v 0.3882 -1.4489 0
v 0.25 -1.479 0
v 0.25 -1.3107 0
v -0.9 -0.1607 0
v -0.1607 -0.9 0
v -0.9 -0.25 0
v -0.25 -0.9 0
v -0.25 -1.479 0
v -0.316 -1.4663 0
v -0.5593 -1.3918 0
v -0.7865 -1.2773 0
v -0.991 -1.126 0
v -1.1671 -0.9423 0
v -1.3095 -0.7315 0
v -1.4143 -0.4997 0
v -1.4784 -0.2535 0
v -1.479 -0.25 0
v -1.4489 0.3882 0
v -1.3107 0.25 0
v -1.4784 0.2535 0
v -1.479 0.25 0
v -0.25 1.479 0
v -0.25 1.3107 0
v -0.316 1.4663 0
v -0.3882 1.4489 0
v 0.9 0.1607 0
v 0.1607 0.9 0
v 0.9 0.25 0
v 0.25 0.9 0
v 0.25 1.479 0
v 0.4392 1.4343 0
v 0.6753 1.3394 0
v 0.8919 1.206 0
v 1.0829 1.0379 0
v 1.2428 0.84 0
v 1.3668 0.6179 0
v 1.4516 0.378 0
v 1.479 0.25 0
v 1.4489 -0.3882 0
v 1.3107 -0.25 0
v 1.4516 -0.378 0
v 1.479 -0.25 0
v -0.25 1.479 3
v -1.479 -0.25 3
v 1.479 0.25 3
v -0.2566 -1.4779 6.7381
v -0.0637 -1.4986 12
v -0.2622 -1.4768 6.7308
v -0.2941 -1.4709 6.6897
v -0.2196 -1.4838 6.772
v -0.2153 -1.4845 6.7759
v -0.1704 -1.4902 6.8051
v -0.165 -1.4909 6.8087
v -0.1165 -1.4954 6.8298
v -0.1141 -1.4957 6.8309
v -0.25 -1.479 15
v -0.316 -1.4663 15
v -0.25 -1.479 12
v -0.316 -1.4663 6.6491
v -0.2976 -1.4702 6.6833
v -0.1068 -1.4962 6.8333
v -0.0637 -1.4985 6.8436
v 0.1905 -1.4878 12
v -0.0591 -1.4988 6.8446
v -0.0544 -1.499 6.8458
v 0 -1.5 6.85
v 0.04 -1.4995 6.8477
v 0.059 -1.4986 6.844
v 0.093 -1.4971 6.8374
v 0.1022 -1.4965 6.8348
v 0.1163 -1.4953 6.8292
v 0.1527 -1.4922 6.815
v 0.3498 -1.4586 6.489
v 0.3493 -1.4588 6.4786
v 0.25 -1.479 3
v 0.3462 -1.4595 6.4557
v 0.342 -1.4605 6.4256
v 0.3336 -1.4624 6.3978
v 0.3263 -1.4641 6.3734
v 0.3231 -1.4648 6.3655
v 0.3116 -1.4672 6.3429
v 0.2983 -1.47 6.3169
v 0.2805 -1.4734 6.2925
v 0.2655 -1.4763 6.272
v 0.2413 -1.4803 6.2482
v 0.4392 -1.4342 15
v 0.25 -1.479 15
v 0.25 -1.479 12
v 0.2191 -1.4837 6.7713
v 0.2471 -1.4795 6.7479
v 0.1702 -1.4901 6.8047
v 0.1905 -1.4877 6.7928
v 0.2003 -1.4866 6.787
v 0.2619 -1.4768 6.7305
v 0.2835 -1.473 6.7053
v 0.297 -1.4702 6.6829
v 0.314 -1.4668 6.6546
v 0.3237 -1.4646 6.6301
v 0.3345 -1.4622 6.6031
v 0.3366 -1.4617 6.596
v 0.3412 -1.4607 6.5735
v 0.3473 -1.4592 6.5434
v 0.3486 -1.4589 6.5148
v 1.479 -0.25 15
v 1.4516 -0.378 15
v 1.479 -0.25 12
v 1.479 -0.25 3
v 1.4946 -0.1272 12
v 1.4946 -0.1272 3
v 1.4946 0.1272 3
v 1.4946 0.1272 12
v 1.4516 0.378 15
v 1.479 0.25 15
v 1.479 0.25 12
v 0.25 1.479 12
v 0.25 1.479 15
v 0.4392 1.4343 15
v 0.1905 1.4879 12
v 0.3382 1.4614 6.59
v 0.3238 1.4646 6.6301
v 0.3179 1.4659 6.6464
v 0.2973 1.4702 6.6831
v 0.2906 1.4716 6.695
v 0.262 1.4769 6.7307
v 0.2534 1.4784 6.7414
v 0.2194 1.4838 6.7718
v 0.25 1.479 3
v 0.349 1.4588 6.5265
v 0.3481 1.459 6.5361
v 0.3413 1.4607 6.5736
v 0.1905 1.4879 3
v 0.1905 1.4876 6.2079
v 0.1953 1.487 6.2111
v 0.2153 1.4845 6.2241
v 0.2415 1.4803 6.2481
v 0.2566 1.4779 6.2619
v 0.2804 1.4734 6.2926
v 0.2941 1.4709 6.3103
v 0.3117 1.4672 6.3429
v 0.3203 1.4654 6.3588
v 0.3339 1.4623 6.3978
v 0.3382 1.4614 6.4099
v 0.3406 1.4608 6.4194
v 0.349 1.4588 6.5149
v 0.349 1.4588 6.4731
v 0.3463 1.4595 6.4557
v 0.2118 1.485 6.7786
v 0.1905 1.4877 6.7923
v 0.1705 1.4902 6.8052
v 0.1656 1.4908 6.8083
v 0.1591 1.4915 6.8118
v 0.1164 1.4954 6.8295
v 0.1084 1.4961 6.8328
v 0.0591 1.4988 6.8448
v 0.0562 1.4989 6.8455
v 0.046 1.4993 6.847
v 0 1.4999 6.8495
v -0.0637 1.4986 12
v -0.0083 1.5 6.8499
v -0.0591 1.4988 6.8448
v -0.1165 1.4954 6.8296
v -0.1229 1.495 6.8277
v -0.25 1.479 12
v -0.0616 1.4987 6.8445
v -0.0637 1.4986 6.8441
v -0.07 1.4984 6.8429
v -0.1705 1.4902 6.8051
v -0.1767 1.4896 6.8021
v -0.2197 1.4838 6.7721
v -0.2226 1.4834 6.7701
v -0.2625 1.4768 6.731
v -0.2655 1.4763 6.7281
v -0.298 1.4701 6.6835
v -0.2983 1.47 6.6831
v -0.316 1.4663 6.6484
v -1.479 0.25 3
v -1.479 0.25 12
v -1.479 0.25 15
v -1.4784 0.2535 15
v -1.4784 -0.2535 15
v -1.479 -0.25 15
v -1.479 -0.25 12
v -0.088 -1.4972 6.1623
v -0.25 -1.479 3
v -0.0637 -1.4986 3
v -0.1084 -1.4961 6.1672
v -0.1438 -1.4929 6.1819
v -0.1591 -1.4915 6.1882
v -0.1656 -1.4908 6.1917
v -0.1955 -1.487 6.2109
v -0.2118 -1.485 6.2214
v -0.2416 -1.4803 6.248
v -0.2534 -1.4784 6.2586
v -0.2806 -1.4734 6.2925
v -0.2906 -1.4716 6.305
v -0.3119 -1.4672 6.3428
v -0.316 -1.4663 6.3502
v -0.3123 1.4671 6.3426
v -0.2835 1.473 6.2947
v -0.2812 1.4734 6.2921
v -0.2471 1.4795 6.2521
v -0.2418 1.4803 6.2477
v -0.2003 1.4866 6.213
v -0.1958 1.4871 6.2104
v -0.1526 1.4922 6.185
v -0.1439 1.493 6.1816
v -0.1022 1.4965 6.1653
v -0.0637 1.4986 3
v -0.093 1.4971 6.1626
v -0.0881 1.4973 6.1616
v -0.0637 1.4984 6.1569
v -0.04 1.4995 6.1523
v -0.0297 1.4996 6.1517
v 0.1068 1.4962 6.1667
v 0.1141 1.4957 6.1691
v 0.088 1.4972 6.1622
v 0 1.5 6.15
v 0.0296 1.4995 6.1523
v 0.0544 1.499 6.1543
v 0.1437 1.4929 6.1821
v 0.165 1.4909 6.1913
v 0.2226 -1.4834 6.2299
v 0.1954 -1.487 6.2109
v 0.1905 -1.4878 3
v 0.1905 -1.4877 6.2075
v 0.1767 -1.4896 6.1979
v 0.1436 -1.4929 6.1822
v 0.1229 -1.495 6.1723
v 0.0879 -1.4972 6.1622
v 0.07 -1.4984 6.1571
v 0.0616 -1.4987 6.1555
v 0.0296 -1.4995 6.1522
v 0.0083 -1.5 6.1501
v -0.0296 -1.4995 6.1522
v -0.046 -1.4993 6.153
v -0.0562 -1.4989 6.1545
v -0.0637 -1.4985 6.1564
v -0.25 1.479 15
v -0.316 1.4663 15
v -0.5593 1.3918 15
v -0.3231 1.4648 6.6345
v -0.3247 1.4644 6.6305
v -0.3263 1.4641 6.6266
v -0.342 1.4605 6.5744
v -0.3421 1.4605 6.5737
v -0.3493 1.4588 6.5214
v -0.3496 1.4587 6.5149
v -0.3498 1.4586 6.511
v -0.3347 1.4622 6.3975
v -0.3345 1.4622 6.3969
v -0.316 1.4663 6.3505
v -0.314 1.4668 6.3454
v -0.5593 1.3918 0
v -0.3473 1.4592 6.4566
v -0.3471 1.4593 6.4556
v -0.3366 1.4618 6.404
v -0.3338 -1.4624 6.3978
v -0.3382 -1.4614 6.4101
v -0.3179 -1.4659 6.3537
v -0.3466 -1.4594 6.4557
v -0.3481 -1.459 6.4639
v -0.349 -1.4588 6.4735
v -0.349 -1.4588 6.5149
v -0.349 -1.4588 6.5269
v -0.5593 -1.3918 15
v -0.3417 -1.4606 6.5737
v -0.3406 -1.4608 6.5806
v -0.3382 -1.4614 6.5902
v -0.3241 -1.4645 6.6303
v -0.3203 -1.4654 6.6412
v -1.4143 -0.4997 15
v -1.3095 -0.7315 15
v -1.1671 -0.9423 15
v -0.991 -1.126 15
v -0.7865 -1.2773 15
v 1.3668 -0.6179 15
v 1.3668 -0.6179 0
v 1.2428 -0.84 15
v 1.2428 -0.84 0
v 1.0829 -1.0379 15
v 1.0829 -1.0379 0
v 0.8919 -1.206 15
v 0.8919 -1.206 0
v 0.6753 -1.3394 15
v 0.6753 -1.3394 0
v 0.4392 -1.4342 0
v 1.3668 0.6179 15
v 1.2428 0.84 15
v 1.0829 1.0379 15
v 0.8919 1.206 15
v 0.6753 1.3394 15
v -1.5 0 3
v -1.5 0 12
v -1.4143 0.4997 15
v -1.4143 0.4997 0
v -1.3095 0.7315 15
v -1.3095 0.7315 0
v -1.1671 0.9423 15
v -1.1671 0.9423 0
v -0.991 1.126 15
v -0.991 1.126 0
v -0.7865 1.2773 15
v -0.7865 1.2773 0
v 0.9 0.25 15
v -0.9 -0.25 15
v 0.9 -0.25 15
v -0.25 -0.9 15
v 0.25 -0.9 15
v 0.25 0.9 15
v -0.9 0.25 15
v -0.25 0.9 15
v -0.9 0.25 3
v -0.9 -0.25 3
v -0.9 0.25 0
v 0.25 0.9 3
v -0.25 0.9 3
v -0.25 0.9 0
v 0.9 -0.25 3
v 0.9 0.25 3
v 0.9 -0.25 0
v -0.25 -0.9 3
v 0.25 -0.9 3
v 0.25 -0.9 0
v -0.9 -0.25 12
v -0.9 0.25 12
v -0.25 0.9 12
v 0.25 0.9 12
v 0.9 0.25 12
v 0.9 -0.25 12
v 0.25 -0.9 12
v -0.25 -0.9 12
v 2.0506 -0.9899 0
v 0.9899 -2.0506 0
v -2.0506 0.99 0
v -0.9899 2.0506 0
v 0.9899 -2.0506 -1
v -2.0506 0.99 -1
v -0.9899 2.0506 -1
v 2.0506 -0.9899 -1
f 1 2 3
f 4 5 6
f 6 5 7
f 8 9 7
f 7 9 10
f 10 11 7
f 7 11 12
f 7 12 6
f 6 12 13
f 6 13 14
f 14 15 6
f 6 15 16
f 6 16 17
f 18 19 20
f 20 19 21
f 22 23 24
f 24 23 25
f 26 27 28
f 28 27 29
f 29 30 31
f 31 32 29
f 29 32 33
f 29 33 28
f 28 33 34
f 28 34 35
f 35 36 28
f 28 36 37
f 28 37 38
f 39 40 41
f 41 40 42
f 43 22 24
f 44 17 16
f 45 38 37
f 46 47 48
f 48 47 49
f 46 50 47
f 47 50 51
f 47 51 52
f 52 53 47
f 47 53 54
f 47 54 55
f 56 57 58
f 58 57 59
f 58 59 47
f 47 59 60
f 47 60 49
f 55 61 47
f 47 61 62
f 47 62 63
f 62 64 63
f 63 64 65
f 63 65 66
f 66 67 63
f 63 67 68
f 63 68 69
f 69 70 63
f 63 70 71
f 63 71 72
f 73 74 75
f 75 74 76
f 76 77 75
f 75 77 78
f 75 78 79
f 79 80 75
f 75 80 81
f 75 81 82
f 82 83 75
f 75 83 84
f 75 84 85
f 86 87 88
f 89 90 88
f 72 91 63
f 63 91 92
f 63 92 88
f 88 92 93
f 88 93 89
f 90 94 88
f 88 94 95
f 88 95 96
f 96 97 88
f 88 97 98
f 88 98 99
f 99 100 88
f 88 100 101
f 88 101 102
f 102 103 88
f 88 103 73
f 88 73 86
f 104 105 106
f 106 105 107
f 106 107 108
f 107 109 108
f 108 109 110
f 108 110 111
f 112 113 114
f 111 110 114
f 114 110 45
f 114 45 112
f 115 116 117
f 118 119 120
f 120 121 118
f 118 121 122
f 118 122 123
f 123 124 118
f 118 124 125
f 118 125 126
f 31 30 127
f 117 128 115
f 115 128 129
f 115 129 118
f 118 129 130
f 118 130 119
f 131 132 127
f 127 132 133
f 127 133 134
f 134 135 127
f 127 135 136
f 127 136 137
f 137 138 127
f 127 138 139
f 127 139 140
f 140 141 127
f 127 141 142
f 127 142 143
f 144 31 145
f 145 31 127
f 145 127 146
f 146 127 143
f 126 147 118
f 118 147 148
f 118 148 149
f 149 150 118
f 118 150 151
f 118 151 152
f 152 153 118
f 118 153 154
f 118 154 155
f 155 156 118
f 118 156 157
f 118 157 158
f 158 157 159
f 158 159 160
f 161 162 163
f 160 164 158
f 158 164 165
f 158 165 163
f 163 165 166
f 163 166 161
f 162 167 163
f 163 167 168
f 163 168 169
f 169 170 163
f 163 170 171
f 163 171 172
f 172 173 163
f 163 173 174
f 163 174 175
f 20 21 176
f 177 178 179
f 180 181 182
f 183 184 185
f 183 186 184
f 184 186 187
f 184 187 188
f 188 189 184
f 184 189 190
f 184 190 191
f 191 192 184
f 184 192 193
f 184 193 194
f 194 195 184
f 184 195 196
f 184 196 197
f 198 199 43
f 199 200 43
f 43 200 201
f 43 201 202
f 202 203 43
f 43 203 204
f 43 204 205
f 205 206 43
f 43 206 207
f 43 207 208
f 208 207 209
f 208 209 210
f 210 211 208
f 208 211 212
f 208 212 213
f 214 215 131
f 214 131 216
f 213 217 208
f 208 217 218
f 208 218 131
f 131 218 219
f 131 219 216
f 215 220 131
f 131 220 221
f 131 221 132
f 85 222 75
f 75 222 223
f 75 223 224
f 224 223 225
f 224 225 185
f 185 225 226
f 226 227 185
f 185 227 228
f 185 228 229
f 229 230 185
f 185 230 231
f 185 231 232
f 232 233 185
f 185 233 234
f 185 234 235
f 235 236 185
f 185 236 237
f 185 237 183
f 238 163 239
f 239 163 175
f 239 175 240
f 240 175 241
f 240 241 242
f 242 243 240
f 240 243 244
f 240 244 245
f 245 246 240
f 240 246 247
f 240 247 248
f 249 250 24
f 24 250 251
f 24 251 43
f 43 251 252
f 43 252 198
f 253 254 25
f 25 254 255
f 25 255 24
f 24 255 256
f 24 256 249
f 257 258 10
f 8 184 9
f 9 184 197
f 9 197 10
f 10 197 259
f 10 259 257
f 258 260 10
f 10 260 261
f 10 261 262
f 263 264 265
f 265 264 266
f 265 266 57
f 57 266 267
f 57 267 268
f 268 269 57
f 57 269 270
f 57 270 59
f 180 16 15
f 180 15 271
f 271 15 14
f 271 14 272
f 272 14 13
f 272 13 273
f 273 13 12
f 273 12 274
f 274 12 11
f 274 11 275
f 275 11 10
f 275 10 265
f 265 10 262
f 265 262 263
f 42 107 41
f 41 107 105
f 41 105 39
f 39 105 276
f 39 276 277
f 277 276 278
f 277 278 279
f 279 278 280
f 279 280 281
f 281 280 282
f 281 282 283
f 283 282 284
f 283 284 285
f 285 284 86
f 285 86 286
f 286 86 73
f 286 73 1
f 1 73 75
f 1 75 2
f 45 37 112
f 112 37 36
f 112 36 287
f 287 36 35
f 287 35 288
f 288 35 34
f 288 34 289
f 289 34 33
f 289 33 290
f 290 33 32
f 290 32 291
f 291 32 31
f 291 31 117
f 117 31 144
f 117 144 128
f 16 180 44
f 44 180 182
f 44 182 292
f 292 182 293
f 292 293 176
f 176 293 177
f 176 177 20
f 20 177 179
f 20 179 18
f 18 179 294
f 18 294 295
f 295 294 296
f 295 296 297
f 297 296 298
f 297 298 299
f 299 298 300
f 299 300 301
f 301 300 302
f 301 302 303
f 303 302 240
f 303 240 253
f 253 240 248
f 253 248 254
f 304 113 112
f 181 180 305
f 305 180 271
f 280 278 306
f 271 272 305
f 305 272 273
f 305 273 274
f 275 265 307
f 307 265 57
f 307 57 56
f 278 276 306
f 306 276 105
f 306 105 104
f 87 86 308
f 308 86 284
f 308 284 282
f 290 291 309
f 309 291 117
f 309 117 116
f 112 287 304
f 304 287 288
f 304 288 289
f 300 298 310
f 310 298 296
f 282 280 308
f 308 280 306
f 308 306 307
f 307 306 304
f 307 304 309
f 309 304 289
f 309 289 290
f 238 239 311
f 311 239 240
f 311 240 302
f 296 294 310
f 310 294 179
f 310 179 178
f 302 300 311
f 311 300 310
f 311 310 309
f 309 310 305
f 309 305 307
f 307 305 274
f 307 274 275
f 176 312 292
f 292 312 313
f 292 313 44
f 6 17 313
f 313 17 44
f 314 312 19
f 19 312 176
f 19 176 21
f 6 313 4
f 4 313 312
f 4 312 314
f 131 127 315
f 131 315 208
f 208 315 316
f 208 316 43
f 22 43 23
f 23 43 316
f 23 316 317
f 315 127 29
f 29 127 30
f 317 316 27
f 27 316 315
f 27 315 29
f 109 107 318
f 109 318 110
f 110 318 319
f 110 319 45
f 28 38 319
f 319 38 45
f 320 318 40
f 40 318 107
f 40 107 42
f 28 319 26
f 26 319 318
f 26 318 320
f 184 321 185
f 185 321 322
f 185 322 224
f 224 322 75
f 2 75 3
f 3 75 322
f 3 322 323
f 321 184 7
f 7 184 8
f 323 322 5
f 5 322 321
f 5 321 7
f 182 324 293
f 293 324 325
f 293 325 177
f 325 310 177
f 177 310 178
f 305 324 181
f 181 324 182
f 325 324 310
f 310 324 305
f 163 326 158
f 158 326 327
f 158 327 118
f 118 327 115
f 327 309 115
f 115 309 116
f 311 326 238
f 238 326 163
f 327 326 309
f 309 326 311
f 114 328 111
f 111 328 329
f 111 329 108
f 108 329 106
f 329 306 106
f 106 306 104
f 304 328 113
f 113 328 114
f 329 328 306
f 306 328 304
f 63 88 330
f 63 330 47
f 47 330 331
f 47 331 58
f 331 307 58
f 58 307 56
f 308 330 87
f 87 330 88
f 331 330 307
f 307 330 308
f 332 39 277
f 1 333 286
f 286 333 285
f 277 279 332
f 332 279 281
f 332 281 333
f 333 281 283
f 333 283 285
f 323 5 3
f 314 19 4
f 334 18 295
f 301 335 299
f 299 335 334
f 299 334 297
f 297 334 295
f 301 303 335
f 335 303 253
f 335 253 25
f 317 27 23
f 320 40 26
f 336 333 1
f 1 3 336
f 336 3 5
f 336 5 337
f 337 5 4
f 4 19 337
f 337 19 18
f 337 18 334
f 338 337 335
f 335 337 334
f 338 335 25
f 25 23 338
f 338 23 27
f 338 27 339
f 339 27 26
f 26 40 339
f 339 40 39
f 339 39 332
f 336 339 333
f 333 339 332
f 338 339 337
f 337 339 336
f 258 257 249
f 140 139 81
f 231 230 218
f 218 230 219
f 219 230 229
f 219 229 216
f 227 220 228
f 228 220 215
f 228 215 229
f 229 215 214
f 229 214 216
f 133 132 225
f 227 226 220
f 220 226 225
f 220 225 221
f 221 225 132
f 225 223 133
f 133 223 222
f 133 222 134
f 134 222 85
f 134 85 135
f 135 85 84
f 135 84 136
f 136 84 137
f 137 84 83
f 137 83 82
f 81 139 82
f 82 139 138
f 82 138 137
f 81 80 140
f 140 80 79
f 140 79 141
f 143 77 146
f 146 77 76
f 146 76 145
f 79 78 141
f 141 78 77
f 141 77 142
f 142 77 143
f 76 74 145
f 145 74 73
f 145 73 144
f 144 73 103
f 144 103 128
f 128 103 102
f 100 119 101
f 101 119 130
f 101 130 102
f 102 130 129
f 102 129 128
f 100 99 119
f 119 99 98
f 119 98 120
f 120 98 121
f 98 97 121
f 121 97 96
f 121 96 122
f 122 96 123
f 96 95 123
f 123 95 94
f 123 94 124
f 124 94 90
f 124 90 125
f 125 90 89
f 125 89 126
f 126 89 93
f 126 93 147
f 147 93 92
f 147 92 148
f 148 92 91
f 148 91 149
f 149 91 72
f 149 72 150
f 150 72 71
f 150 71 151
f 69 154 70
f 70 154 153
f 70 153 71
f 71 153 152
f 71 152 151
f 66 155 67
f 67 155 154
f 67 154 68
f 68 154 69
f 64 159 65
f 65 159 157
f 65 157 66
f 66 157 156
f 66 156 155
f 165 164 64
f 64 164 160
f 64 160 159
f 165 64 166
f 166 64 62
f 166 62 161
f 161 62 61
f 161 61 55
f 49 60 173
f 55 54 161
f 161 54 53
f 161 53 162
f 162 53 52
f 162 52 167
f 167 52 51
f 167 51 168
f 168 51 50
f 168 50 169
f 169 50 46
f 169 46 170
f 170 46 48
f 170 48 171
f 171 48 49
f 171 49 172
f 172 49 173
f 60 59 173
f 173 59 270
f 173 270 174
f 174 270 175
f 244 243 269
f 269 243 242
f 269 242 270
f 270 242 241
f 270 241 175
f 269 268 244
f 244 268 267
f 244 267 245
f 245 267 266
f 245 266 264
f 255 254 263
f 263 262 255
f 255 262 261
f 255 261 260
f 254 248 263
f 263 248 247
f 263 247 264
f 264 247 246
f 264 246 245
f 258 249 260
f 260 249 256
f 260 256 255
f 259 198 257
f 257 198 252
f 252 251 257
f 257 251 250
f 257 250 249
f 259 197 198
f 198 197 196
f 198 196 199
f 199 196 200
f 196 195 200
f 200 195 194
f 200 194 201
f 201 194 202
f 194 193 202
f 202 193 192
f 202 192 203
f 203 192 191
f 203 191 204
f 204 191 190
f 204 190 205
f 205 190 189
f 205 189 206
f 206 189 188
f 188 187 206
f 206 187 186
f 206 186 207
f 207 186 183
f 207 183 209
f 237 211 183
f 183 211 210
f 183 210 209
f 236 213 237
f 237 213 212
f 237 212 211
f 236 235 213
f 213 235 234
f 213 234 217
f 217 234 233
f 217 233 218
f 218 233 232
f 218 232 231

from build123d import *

# Parameters (mm, degrees)
SKETCH1_R                           = 1.5
BOSS_EXTRUDE1_DEPTH                 = 15
SKETCH2_W                           = 0.747320827
SKETCH2_H                           = 0.5
CUT_EXTRUDE1_DEPTH                  = 3
CIRPATTERN1_COUNT                   = 4
MIRROR1_COPY_1_SKETCH_W             = 0.747320827
MIRROR1_COPY_1_SKETCH_H             = 0.5
MIRROR1_COPY_1_DEPTH                = 3
MIRROR1_COPY_2_SKETCH_W             = 0.747320827
MIRROR1_COPY_2_SKETCH_H             = 0.5
MIRROR1_COPY_2_DEPTH                = 3
MIRROR1_COPY_3_SKETCH_W             = 0.747320827
MIRROR1_COPY_3_SKETCH_H             = 0.5
MIRROR1_COPY_3_DEPTH                = 3
BOSS_EXTRUDE5_DEPTH                 = 1
CUT_EXTRUDE2_REACH                  = 17.278
CUT_EXTRUDE2_END_RADIUS             = 1.5
SKETCH7_R                           = 0.35
CUT_EXTRUDE2_DIRECTION_2_REACH      = 17.278
CUT_EXTRUDE2_DIRECTION_2_END_RADIUS = 1.5


with BuildPart() as part:
    # Sketch1 → Boss-Extrude1 (new body)
    with BuildSketch(Plane.XY):
        Circle(SKETCH1_R)
    extrude(amount=BOSS_EXTRUDE1_DEPTH)

    # Sketch2 → Cut-Extrude1 (cut)
    with BuildSketch(Plane(origin=(0, 0, 0), x_dir=(-1, 0, 0), z_dir=(0, 0, -1))):
        with Locations((1.273660414, 0)):
            Rectangle(SKETCH2_W, SKETCH2_H)
    cut_extrude1 = extrude(amount=-CUT_EXTRUDE1_DEPTH, mode=Mode.SUBTRACT)

    # CirPattern1: Cut-Extrude1 ×4 about axis
    cirpattern1_axis = Axis((0, 0, 0), (0, 0, 1))
    for i in range(1, CIRPATTERN1_COUNT):
        add(cut_extrude1.rotate(cirpattern1_axis, i * 360 / CIRPATTERN1_COUNT), mode=Mode.SUBTRACT)

    # Mirror1: Cut-Extrude1 across plane
    add(cut_extrude1.mirror(Plane(origin=(0, 0, 7.5), x_dir=(1, 0, 0), z_dir=(0, 0, -1))), mode=Mode.SUBTRACT)

    # Mirror1 copy 1 sketch → Mirror1 copy 1 (cut)
    with BuildSketch(Plane(origin=(0, 0, 15), x_dir=(0, -1, 0), z_dir=(0, 0, 1))):
        with Locations((1.273660414, 0)):
            Rectangle(MIRROR1_COPY_1_SKETCH_W, MIRROR1_COPY_1_SKETCH_H)
    extrude(amount=-MIRROR1_COPY_1_DEPTH, mode=Mode.SUBTRACT)

    # Mirror1 copy 2 sketch → Mirror1 copy 2 (cut)
    with BuildSketch(Plane.XY.offset(15)):
        with Locations((1.273660414, 0)):
            Rectangle(MIRROR1_COPY_2_SKETCH_W, MIRROR1_COPY_2_SKETCH_H)
    extrude(amount=-MIRROR1_COPY_2_DEPTH, mode=Mode.SUBTRACT)

    # Mirror1 copy 3 sketch → Mirror1 copy 3 (cut)
    with BuildSketch(Plane(origin=(0, 0, 15), x_dir=(0, 1, 0), z_dir=(0, 0, 1))):
        with Locations((1.273660414, 0)):
            Rectangle(MIRROR1_COPY_3_SKETCH_W, MIRROR1_COPY_3_SKETCH_H)
    extrude(amount=-MIRROR1_COPY_3_DEPTH, mode=Mode.SUBTRACT)

    # Sketch6 → Boss-Extrude5 (add)
    with BuildSketch(Plane(origin=(0, 0, 0), x_dir=(-1, 0, 0), z_dir=(0, 0, -1))):
        Polygon((-0.989949494, -2.050609665), (-2.050609665, -0.989949494), (0.989949494, 2.050609665), (2.050609665, 0.989949494), align=None)
    extrude(amount=BOSS_EXTRUDE5_DEPTH)

    # Cut-Extrude2: up to this cylinder (the profile starts inside it)
    cut_extrude2_end = Plane(origin=(0, 0, 6.5), z_dir=(0, 0, -1)) * Cylinder(CUT_EXTRUDE2_END_RADIUS, 38.556, mode=Mode.PRIVATE)
    # Sketch7 → Cut-Extrude2 (cut, up to the surface)
    with BuildSketch(Plane(origin=(0, 0, 0), x_dir=(1, 0, 0), z_dir=(0, 1, 0)), mode=Mode.PRIVATE) as cut_extrude2_sk1:
        with Locations(Location((0, -6.5, 0), (0, 0, 270))):
            Circle(SKETCH7_R)
    cut_extrude2_tool1 = extrude(cut_extrude2_sk1.sketch, amount=-CUT_EXTRUDE2_REACH, mode=Mode.PRIVATE) & cut_extrude2_end
    add(cut_extrude2_tool1.solids().sort_by_distance((0, 0, 6.5))[0], mode=Mode.SUBTRACT)

    # Cut-Extrude2 direction 2: up to this cylinder (the profile starts inside it)
    cut_extrude2_direction_2_end = Plane(origin=(0, 0, 6.5), z_dir=(0, 0, -1)) * Cylinder(CUT_EXTRUDE2_DIRECTION_2_END_RADIUS, 38.556, mode=Mode.PRIVATE)
    # Sketch7 → Cut-Extrude2 direction 2 (cut, up to the surface)
    with BuildSketch(Plane(origin=(0, 0, 0), x_dir=(1, 0, 0), z_dir=(0, 1, 0)), mode=Mode.PRIVATE) as cut_extrude2_direction_2_sk1:
        with Locations(Location((0, -6.5, 0), (0, 0, 270))):
            Circle(SKETCH7_R)
    cut_extrude2_direction_2_tool1 = extrude(cut_extrude2_direction_2_sk1.sketch, amount=CUT_EXTRUDE2_DIRECTION_2_REACH, mode=Mode.PRIVATE) & cut_extrude2_direction_2_end
    add(cut_extrude2_direction_2_tool1.solids().sort_by_distance((0, 0, 6.5))[0], mode=Mode.SUBTRACT)


solid = part.part
